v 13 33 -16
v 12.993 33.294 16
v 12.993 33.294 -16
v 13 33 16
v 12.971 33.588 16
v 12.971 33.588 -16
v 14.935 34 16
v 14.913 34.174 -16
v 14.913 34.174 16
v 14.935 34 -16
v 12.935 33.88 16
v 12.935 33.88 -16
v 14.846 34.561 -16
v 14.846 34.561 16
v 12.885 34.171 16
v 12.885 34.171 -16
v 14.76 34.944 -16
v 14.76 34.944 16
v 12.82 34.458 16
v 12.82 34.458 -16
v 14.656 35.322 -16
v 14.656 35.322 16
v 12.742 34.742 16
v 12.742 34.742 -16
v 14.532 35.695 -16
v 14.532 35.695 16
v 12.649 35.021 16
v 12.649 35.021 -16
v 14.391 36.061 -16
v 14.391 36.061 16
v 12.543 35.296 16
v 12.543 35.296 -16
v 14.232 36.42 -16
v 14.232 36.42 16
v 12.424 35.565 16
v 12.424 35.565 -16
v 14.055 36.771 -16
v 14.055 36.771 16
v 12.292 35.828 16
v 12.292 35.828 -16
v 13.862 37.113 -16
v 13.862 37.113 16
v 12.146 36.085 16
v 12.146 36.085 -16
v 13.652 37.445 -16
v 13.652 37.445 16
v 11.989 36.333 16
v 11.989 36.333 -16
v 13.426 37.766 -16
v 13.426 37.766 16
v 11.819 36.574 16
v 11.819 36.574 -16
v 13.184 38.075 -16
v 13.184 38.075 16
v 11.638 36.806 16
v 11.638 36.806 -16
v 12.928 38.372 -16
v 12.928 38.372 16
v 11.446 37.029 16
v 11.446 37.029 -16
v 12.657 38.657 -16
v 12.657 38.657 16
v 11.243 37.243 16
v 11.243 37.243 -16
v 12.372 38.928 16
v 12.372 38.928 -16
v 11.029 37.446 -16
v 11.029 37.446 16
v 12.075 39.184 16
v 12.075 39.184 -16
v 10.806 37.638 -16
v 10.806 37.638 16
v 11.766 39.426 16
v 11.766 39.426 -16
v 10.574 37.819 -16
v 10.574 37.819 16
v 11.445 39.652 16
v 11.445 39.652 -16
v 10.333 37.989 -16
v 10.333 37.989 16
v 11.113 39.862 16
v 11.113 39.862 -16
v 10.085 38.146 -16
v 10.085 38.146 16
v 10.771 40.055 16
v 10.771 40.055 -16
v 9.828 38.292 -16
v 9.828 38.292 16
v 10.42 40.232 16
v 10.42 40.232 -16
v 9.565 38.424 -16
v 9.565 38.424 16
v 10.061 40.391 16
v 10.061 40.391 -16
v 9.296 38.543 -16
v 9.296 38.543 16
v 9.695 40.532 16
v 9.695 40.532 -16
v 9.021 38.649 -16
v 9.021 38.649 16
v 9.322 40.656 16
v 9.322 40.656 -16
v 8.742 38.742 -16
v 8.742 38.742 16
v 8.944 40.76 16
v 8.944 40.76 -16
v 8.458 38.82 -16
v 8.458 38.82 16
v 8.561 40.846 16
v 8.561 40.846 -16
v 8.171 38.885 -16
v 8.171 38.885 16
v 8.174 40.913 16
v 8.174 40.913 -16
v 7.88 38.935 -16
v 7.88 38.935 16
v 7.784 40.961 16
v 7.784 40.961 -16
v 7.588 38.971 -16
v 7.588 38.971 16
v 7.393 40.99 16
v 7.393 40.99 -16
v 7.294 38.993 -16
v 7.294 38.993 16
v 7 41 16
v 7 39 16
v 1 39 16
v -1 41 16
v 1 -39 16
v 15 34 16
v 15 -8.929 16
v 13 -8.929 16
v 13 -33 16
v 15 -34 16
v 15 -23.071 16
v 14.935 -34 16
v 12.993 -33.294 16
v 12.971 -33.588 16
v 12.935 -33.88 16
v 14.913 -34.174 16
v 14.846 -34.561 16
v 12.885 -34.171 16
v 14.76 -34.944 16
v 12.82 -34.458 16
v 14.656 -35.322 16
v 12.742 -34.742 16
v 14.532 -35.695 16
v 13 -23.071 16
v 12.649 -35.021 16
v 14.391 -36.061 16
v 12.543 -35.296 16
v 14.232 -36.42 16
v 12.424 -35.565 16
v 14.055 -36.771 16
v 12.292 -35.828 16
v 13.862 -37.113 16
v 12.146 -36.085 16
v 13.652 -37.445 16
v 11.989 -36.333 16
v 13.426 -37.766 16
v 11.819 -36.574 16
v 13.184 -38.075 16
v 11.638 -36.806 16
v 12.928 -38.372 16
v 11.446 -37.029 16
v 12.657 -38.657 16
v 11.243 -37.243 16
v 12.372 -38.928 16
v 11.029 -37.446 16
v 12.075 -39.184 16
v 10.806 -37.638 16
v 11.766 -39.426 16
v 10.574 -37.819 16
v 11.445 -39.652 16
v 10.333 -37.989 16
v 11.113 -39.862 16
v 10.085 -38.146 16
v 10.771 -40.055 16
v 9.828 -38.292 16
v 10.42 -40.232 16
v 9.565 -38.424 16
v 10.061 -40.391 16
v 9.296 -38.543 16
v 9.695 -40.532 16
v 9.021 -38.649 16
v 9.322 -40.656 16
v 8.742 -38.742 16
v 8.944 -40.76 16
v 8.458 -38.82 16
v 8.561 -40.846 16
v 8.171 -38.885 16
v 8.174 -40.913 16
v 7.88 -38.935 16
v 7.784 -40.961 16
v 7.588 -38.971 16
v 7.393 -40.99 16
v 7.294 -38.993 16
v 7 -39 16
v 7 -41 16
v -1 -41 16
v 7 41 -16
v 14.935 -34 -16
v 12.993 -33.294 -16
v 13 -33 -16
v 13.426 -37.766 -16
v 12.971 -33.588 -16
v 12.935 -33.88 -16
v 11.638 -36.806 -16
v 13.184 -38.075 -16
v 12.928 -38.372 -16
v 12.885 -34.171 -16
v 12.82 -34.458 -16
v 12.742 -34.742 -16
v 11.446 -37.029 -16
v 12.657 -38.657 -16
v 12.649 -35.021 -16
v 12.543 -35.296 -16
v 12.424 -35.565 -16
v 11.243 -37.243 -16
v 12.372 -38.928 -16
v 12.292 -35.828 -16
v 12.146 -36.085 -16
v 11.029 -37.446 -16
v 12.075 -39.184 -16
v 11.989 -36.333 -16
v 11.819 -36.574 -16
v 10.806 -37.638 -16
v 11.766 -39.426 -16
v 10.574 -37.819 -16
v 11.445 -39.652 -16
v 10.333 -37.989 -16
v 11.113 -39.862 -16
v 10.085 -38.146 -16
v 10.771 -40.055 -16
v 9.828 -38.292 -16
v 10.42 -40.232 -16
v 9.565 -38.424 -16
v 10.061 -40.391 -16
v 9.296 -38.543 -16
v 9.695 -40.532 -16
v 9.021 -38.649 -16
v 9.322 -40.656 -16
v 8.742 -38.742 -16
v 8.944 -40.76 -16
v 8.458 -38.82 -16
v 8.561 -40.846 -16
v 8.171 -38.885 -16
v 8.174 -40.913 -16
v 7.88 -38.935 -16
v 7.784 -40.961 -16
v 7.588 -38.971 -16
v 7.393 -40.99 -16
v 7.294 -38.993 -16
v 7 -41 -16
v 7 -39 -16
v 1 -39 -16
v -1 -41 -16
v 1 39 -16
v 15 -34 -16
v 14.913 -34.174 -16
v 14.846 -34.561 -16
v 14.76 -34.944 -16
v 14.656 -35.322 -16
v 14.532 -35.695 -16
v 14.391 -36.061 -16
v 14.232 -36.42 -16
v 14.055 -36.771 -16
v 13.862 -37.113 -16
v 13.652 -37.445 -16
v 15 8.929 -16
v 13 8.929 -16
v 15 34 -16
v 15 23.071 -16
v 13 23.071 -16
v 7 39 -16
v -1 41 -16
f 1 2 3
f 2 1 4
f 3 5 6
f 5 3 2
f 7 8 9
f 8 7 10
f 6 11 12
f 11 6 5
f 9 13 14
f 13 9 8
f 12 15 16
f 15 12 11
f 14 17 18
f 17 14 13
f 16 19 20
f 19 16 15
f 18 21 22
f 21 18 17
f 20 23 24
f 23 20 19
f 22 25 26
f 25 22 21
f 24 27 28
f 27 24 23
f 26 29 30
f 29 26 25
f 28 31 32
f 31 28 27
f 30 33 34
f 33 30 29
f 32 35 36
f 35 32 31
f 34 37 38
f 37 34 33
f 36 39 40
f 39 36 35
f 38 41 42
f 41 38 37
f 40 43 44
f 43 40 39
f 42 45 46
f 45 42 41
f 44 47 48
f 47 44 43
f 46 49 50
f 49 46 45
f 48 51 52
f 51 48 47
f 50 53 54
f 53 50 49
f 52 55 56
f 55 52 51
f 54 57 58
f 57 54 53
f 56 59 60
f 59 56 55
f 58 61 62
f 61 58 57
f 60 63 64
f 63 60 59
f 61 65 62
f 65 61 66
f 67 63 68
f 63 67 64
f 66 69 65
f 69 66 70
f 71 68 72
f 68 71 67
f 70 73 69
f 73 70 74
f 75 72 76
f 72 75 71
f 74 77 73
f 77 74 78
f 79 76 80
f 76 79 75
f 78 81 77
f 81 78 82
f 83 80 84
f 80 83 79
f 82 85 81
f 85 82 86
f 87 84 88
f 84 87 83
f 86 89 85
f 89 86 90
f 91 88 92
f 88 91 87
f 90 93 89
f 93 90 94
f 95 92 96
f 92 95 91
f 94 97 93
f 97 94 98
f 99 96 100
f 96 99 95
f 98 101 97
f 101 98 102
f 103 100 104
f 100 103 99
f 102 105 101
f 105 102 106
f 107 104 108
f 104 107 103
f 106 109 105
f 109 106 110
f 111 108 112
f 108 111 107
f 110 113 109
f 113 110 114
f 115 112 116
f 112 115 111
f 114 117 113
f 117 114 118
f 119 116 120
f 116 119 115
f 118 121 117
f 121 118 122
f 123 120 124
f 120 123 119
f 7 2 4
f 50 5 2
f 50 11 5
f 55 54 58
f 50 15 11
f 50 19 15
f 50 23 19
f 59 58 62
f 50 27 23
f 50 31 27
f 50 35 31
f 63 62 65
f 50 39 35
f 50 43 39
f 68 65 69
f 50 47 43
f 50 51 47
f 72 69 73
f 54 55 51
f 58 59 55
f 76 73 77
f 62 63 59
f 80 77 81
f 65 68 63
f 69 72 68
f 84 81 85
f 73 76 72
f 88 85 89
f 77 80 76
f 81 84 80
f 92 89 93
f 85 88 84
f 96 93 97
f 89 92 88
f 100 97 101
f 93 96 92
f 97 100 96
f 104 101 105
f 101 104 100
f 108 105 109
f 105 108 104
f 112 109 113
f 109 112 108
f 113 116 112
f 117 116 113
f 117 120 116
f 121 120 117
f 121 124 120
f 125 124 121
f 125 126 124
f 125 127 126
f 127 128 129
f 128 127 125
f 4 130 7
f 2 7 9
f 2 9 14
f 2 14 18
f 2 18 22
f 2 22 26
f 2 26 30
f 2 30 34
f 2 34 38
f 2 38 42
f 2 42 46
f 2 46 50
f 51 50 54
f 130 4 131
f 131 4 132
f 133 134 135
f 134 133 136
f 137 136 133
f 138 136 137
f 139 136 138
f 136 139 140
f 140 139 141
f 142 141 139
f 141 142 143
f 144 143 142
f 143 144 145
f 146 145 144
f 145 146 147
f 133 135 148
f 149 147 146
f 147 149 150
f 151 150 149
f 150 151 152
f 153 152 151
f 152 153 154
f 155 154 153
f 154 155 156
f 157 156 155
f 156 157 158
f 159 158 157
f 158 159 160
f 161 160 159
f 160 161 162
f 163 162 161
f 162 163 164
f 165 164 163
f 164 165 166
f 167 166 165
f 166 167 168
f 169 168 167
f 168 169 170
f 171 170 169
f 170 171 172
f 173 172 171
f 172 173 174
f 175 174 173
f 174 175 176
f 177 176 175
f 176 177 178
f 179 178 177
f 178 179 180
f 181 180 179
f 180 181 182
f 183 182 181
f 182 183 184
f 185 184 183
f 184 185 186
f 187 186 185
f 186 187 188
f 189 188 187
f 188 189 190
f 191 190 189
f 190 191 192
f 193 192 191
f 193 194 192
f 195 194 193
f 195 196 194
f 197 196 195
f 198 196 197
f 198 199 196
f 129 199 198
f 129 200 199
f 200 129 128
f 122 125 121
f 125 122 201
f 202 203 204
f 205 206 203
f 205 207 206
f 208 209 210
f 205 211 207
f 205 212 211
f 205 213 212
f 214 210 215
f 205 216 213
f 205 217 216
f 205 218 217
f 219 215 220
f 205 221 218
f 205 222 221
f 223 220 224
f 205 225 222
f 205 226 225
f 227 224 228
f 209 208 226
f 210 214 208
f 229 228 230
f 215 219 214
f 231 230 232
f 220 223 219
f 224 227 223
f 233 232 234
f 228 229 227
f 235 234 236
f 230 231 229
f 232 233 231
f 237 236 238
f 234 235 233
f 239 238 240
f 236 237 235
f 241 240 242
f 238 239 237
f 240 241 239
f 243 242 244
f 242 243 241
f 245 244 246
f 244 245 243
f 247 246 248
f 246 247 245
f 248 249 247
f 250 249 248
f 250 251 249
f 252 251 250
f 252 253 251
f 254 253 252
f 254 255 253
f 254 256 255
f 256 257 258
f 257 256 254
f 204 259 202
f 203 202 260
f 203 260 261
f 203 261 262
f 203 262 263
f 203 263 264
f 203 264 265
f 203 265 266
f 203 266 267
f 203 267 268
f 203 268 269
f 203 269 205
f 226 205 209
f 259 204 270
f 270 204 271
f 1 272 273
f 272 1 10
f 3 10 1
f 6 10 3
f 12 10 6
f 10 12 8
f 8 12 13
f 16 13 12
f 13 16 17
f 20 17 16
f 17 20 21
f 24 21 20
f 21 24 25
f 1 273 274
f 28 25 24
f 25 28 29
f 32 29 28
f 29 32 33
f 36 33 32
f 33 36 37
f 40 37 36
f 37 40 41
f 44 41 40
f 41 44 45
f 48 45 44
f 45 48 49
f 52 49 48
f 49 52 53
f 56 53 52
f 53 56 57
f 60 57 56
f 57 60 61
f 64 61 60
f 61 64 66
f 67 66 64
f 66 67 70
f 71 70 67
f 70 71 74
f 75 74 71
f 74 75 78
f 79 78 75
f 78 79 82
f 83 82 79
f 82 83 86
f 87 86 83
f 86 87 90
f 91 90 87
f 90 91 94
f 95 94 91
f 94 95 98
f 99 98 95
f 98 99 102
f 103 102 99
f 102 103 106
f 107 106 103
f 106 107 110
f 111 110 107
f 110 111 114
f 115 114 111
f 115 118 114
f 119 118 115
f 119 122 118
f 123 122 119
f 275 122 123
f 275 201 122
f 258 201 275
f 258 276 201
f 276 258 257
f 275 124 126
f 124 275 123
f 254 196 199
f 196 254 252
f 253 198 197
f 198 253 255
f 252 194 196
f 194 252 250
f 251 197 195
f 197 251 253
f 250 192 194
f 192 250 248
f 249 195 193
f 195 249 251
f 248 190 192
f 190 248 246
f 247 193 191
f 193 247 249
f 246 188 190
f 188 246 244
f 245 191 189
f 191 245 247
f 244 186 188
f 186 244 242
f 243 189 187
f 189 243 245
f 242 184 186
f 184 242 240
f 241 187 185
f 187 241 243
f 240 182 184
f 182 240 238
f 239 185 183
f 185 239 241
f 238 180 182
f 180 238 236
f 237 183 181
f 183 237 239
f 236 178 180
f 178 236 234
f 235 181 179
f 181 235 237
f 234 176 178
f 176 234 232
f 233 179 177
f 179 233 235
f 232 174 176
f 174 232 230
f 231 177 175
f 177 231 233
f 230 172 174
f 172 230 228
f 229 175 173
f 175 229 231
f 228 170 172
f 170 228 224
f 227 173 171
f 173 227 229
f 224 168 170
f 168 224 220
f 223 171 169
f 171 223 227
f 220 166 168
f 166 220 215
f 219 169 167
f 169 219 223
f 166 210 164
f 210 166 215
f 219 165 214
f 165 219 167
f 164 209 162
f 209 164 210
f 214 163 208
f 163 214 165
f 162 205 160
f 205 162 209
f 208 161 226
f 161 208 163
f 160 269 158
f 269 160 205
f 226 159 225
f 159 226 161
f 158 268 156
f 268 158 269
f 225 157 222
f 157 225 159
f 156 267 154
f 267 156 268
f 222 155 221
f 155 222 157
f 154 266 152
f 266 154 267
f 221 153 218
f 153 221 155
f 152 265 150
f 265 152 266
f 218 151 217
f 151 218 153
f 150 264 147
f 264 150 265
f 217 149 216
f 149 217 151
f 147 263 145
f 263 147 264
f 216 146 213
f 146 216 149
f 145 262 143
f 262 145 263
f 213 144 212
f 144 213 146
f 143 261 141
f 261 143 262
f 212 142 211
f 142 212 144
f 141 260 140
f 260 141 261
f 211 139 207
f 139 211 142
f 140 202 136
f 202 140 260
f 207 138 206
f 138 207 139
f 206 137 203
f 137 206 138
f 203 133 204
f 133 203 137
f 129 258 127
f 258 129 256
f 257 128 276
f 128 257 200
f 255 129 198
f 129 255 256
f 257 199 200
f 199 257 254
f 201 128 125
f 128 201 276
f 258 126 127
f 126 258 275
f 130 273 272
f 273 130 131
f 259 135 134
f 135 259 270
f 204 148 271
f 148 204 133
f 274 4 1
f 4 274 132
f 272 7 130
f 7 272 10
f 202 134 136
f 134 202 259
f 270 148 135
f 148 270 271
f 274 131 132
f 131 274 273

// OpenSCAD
//###############################################################################
//# CableGuide                                                                  #
//###############################################################################
//#    Copyright 2024 Dirk Heisswolf                                            #
//#    This file is part of the CableGuide project.                             #
//#                                                                             #
//#    This project is free software: you can redistribute it and/or modify     #
//#    it under the terms of the GNU General Public License as published by     #
//#    the Free Software Foundation, either version 3 of the License, or        #
//#    (at your option) any later version.                                      #
//#                                                                             #
//#    This project is distributed in the hope that it will be useful,          #
//#    but WITHOUT ANY WARRANTY; without even the implied warranty of           #
//#    MERCHANTABILITY or FITNESS FOR A PARTICULAR PURPOSE.  See the            #
//#    GNU General Public License for more details.                             #
//#                                                                             #
//#    You should have received a copy of the GNU General Public License        #
//#    along with this project.  If not, see <http://www.gnu.org/licenses/>.    #
//#                                                                             #
//###############################################################################
//# Description:                                                                #
//#   Cable channel corners parts                                               #
//#                                                                             #
//###############################################################################
//# Version History:                                                            #
//#   February 17, 2025                                                         #
//#      - Initial release                                                      #
//#                                                                             #
//###############################################################################

guideW = 80;  //width of the cable guide
guideD = 32; //depth of the cable guide
guideH = 12; //height of the cable guide
guideT =  2; //thickness of the cable guide
gapW   = 10; //width of the gap
$fn    = 128;

module cableGuide() {
  difference() {
    union() {
        translate([guideH/2+guideT/2,guideW/2-guideH/2-guideT/2,-guideD/2]) rotate([0,0,0])
        rotate_extrude(angle=90) translate([guideH/2,0,0]) square([guideT,guideD]);

        translate([guideH/2+guideT/2,-guideW/2+guideH/2+guideT/2,-guideD/2]) rotate([0,0,270])
        rotate_extrude(angle=90) translate([guideH/2,0,0]) square([guideT,guideD]);

        translate([0,             0,       0]) cube([guideT,         guideW,guideD], center=true);
        translate([guideH/4,     -guideW/2,0]) cube([guideH/2+guideT,guideT,guideD], center=true);
        translate([guideH/4,      guideW/2,0]) cube([guideH/2+guideT,guideT,guideD], center=true);
        translate([guideH+guideT, 0,       0]) cube([guideT,  guideW-guideH,guideD], center=true);   
    }
    union() {
        translate([guideH+guideT,0,0]) 
        rotate([45,0,0]) 
        cube([guideH,gapW,2*guideD], center=true);
    }
  }
}
cableGuide();
